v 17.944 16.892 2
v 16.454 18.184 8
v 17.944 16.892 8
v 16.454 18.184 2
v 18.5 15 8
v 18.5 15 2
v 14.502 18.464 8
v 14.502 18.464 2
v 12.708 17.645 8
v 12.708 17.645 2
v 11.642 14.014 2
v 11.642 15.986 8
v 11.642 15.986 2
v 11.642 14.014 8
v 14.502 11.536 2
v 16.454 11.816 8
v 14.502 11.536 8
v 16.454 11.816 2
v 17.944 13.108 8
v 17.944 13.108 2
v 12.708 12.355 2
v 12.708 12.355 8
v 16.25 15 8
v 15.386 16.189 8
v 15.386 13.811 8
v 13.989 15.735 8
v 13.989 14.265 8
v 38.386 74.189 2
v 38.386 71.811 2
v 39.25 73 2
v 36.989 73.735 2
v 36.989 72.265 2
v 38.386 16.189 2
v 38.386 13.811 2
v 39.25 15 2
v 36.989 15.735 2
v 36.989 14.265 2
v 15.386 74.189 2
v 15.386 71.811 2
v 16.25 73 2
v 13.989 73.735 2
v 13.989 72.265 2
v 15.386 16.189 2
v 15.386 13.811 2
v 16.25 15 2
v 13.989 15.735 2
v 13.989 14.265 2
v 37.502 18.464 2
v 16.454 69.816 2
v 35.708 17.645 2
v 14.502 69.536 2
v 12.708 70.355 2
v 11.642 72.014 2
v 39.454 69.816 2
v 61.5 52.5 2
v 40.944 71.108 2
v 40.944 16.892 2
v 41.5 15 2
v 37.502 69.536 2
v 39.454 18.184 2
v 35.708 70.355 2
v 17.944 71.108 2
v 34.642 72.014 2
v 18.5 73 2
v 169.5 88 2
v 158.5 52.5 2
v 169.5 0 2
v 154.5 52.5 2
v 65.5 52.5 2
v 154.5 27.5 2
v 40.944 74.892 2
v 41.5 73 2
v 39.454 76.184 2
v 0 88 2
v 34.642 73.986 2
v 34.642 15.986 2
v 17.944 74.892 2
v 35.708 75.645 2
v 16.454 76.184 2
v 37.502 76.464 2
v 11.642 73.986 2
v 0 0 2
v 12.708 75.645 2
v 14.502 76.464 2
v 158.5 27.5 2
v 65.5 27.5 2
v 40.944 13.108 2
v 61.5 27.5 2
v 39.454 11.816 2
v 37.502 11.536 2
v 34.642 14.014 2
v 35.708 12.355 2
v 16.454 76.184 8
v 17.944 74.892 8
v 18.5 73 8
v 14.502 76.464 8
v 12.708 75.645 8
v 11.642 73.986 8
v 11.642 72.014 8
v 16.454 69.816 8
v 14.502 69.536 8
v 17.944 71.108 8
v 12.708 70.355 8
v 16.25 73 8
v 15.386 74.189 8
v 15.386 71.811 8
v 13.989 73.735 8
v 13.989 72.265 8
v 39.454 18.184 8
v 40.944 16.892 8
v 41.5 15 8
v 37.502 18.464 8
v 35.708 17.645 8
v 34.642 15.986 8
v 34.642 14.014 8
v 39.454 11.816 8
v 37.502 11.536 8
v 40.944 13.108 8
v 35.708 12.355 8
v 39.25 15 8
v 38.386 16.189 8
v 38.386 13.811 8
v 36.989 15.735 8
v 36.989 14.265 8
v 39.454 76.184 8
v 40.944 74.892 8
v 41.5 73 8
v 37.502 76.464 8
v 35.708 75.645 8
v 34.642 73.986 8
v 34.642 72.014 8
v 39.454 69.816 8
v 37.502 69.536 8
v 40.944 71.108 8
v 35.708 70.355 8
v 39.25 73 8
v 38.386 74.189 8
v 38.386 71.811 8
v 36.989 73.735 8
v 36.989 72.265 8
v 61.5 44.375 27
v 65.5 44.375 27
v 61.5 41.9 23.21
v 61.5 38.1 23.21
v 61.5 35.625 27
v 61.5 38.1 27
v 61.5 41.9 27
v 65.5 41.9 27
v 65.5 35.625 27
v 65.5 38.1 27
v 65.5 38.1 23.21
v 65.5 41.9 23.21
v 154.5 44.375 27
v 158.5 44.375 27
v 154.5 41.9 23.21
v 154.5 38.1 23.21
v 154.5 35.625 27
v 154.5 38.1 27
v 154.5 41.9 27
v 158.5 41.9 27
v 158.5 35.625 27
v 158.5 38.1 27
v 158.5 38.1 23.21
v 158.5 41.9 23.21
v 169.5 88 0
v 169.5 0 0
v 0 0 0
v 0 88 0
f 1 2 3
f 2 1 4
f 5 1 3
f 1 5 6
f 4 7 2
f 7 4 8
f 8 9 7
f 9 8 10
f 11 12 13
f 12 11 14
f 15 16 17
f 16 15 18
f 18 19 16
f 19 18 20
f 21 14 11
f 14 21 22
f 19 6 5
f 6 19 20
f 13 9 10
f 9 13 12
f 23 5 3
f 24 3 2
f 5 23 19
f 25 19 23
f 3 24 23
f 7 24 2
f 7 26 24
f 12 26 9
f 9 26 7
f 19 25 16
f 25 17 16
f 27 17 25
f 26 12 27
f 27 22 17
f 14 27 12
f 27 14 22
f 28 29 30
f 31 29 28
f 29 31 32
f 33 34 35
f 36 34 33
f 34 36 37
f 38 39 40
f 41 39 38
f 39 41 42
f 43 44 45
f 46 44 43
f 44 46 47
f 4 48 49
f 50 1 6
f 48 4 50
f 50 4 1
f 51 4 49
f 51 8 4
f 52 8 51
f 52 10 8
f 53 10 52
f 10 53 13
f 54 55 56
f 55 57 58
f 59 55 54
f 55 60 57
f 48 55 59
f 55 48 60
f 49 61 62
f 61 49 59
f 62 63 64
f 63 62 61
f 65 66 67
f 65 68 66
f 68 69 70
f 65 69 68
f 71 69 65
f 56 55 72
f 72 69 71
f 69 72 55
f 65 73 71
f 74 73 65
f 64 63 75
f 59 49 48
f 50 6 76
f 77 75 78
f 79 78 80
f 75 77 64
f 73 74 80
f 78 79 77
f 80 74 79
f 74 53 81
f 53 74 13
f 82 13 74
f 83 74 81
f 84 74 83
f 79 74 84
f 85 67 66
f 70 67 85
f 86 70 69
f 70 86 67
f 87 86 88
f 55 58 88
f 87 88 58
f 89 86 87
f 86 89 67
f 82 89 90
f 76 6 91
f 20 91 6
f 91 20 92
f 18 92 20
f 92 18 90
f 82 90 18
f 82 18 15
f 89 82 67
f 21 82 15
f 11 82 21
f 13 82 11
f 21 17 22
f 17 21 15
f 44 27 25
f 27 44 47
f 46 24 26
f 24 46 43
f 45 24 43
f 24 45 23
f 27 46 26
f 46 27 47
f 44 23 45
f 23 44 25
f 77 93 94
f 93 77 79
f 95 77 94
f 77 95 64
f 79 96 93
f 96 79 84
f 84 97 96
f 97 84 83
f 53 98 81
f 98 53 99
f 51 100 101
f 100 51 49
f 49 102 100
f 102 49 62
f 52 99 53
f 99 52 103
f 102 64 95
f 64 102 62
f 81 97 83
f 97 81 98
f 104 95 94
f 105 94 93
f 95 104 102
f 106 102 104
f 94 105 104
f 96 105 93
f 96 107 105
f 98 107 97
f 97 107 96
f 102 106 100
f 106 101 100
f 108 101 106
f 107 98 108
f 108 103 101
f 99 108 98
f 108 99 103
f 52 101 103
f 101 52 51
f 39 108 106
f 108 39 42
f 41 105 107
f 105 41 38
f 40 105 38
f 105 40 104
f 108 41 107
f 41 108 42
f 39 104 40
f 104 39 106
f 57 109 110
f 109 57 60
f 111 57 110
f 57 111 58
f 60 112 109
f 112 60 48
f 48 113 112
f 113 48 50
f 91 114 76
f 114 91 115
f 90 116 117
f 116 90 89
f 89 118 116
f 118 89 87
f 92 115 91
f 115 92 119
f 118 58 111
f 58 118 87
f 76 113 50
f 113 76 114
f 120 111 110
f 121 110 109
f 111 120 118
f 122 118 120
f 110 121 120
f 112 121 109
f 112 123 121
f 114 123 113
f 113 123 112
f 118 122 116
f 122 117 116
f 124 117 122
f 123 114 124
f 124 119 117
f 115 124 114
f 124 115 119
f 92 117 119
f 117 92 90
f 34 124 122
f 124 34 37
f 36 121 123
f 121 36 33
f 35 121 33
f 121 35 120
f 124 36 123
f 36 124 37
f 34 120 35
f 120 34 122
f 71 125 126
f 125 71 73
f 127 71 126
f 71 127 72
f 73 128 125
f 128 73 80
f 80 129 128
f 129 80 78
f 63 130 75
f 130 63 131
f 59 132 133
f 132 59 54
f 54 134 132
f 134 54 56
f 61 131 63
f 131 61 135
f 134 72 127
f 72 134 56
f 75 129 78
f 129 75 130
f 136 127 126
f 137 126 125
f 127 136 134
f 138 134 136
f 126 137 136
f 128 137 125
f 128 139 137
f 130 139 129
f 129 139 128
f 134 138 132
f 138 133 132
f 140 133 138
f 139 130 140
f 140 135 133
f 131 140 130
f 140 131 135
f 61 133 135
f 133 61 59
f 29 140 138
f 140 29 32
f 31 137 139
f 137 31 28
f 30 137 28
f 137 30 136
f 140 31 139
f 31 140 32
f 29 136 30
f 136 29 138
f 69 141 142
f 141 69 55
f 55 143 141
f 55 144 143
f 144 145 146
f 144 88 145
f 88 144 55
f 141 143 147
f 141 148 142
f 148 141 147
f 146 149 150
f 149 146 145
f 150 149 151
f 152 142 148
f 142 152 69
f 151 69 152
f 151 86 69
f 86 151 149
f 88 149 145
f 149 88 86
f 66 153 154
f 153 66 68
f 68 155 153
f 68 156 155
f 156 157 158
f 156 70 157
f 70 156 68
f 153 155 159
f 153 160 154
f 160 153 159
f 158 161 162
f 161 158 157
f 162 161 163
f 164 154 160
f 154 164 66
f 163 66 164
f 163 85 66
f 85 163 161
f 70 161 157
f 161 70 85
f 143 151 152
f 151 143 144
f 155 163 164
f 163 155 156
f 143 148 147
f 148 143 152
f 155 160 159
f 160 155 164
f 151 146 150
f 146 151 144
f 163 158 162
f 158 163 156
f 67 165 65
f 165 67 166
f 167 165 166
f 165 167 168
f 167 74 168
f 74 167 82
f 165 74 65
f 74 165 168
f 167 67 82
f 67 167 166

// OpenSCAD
// dial bracket
dial_hole_d=110;
mounting_space = 89;
bracket_x = 4;
bracket_y = 25;
bracket_z = 25;
bracket_xpos=110;
bracket_ypos=40;
slot_d = 3.8;

// rpi numbers
pi_x = 23;
pi_y = 58;
pi_standoff_d = 7;
pi_hole_d = 2.5;
pi_standoff_h = 6;

//base plate
plate_x = bracket_xpos+mounting_space/2+15;
plate_y = pi_y + 30;
plate_z = 2;

// base plate
cube([plate_x,plate_y,plate_z]);

// dial mount brackets
difference(){
translate([-(mounting_space/2+bracket_x/2)+bracket_xpos,bracket_ypos,bracket_z/2+plate_z])
{
bracket();
translate([mounting_space+bracket_x,0,0])bracket();
}
translate([bracket_xpos,bracket_ypos,bracket_z+plate_z-slot_d/2+.01])cube([mounting_space+3*bracket_x,slot_d,slot_d],center=true);
}

// pi standoffs
translate([15,15,0])pimount();

//dial standin
module fakedial(){
axle_to_top = 16;
axle_to_plate = 5.5;
dial_plate_d = 114;
dial_angle = 25;
translate([bracket_xpos,bracket_ypos,bracket_z+plate_z-slot_d/2])
rotate([dial_angle,0,0])
{
rotate([0,90,0])cylinder(d=5,h=mounting_space+4*bracket_x,center=true);
cylinder(d=dial_hole_d,h=axle_to_top);
cylinder(d=dial_plate_d,h=axle_to_plate);
}
}

module bracket(){
linear_extrude(height = bracket_z, scale = [1,.35],center=true) {
square(size = [bracket_x, bracket_y],center=true);
}
}

module pimount(){
    for (x = [0, pi_x]){for (y = [0,pi_y]){
        translate([x, y, plate_z])difference(){cylinder(d = pi_standoff_d, h = pi_standoff_h);cylinder(d = pi_hole_d, h = pi_standoff_h);}
    }}
    
}
